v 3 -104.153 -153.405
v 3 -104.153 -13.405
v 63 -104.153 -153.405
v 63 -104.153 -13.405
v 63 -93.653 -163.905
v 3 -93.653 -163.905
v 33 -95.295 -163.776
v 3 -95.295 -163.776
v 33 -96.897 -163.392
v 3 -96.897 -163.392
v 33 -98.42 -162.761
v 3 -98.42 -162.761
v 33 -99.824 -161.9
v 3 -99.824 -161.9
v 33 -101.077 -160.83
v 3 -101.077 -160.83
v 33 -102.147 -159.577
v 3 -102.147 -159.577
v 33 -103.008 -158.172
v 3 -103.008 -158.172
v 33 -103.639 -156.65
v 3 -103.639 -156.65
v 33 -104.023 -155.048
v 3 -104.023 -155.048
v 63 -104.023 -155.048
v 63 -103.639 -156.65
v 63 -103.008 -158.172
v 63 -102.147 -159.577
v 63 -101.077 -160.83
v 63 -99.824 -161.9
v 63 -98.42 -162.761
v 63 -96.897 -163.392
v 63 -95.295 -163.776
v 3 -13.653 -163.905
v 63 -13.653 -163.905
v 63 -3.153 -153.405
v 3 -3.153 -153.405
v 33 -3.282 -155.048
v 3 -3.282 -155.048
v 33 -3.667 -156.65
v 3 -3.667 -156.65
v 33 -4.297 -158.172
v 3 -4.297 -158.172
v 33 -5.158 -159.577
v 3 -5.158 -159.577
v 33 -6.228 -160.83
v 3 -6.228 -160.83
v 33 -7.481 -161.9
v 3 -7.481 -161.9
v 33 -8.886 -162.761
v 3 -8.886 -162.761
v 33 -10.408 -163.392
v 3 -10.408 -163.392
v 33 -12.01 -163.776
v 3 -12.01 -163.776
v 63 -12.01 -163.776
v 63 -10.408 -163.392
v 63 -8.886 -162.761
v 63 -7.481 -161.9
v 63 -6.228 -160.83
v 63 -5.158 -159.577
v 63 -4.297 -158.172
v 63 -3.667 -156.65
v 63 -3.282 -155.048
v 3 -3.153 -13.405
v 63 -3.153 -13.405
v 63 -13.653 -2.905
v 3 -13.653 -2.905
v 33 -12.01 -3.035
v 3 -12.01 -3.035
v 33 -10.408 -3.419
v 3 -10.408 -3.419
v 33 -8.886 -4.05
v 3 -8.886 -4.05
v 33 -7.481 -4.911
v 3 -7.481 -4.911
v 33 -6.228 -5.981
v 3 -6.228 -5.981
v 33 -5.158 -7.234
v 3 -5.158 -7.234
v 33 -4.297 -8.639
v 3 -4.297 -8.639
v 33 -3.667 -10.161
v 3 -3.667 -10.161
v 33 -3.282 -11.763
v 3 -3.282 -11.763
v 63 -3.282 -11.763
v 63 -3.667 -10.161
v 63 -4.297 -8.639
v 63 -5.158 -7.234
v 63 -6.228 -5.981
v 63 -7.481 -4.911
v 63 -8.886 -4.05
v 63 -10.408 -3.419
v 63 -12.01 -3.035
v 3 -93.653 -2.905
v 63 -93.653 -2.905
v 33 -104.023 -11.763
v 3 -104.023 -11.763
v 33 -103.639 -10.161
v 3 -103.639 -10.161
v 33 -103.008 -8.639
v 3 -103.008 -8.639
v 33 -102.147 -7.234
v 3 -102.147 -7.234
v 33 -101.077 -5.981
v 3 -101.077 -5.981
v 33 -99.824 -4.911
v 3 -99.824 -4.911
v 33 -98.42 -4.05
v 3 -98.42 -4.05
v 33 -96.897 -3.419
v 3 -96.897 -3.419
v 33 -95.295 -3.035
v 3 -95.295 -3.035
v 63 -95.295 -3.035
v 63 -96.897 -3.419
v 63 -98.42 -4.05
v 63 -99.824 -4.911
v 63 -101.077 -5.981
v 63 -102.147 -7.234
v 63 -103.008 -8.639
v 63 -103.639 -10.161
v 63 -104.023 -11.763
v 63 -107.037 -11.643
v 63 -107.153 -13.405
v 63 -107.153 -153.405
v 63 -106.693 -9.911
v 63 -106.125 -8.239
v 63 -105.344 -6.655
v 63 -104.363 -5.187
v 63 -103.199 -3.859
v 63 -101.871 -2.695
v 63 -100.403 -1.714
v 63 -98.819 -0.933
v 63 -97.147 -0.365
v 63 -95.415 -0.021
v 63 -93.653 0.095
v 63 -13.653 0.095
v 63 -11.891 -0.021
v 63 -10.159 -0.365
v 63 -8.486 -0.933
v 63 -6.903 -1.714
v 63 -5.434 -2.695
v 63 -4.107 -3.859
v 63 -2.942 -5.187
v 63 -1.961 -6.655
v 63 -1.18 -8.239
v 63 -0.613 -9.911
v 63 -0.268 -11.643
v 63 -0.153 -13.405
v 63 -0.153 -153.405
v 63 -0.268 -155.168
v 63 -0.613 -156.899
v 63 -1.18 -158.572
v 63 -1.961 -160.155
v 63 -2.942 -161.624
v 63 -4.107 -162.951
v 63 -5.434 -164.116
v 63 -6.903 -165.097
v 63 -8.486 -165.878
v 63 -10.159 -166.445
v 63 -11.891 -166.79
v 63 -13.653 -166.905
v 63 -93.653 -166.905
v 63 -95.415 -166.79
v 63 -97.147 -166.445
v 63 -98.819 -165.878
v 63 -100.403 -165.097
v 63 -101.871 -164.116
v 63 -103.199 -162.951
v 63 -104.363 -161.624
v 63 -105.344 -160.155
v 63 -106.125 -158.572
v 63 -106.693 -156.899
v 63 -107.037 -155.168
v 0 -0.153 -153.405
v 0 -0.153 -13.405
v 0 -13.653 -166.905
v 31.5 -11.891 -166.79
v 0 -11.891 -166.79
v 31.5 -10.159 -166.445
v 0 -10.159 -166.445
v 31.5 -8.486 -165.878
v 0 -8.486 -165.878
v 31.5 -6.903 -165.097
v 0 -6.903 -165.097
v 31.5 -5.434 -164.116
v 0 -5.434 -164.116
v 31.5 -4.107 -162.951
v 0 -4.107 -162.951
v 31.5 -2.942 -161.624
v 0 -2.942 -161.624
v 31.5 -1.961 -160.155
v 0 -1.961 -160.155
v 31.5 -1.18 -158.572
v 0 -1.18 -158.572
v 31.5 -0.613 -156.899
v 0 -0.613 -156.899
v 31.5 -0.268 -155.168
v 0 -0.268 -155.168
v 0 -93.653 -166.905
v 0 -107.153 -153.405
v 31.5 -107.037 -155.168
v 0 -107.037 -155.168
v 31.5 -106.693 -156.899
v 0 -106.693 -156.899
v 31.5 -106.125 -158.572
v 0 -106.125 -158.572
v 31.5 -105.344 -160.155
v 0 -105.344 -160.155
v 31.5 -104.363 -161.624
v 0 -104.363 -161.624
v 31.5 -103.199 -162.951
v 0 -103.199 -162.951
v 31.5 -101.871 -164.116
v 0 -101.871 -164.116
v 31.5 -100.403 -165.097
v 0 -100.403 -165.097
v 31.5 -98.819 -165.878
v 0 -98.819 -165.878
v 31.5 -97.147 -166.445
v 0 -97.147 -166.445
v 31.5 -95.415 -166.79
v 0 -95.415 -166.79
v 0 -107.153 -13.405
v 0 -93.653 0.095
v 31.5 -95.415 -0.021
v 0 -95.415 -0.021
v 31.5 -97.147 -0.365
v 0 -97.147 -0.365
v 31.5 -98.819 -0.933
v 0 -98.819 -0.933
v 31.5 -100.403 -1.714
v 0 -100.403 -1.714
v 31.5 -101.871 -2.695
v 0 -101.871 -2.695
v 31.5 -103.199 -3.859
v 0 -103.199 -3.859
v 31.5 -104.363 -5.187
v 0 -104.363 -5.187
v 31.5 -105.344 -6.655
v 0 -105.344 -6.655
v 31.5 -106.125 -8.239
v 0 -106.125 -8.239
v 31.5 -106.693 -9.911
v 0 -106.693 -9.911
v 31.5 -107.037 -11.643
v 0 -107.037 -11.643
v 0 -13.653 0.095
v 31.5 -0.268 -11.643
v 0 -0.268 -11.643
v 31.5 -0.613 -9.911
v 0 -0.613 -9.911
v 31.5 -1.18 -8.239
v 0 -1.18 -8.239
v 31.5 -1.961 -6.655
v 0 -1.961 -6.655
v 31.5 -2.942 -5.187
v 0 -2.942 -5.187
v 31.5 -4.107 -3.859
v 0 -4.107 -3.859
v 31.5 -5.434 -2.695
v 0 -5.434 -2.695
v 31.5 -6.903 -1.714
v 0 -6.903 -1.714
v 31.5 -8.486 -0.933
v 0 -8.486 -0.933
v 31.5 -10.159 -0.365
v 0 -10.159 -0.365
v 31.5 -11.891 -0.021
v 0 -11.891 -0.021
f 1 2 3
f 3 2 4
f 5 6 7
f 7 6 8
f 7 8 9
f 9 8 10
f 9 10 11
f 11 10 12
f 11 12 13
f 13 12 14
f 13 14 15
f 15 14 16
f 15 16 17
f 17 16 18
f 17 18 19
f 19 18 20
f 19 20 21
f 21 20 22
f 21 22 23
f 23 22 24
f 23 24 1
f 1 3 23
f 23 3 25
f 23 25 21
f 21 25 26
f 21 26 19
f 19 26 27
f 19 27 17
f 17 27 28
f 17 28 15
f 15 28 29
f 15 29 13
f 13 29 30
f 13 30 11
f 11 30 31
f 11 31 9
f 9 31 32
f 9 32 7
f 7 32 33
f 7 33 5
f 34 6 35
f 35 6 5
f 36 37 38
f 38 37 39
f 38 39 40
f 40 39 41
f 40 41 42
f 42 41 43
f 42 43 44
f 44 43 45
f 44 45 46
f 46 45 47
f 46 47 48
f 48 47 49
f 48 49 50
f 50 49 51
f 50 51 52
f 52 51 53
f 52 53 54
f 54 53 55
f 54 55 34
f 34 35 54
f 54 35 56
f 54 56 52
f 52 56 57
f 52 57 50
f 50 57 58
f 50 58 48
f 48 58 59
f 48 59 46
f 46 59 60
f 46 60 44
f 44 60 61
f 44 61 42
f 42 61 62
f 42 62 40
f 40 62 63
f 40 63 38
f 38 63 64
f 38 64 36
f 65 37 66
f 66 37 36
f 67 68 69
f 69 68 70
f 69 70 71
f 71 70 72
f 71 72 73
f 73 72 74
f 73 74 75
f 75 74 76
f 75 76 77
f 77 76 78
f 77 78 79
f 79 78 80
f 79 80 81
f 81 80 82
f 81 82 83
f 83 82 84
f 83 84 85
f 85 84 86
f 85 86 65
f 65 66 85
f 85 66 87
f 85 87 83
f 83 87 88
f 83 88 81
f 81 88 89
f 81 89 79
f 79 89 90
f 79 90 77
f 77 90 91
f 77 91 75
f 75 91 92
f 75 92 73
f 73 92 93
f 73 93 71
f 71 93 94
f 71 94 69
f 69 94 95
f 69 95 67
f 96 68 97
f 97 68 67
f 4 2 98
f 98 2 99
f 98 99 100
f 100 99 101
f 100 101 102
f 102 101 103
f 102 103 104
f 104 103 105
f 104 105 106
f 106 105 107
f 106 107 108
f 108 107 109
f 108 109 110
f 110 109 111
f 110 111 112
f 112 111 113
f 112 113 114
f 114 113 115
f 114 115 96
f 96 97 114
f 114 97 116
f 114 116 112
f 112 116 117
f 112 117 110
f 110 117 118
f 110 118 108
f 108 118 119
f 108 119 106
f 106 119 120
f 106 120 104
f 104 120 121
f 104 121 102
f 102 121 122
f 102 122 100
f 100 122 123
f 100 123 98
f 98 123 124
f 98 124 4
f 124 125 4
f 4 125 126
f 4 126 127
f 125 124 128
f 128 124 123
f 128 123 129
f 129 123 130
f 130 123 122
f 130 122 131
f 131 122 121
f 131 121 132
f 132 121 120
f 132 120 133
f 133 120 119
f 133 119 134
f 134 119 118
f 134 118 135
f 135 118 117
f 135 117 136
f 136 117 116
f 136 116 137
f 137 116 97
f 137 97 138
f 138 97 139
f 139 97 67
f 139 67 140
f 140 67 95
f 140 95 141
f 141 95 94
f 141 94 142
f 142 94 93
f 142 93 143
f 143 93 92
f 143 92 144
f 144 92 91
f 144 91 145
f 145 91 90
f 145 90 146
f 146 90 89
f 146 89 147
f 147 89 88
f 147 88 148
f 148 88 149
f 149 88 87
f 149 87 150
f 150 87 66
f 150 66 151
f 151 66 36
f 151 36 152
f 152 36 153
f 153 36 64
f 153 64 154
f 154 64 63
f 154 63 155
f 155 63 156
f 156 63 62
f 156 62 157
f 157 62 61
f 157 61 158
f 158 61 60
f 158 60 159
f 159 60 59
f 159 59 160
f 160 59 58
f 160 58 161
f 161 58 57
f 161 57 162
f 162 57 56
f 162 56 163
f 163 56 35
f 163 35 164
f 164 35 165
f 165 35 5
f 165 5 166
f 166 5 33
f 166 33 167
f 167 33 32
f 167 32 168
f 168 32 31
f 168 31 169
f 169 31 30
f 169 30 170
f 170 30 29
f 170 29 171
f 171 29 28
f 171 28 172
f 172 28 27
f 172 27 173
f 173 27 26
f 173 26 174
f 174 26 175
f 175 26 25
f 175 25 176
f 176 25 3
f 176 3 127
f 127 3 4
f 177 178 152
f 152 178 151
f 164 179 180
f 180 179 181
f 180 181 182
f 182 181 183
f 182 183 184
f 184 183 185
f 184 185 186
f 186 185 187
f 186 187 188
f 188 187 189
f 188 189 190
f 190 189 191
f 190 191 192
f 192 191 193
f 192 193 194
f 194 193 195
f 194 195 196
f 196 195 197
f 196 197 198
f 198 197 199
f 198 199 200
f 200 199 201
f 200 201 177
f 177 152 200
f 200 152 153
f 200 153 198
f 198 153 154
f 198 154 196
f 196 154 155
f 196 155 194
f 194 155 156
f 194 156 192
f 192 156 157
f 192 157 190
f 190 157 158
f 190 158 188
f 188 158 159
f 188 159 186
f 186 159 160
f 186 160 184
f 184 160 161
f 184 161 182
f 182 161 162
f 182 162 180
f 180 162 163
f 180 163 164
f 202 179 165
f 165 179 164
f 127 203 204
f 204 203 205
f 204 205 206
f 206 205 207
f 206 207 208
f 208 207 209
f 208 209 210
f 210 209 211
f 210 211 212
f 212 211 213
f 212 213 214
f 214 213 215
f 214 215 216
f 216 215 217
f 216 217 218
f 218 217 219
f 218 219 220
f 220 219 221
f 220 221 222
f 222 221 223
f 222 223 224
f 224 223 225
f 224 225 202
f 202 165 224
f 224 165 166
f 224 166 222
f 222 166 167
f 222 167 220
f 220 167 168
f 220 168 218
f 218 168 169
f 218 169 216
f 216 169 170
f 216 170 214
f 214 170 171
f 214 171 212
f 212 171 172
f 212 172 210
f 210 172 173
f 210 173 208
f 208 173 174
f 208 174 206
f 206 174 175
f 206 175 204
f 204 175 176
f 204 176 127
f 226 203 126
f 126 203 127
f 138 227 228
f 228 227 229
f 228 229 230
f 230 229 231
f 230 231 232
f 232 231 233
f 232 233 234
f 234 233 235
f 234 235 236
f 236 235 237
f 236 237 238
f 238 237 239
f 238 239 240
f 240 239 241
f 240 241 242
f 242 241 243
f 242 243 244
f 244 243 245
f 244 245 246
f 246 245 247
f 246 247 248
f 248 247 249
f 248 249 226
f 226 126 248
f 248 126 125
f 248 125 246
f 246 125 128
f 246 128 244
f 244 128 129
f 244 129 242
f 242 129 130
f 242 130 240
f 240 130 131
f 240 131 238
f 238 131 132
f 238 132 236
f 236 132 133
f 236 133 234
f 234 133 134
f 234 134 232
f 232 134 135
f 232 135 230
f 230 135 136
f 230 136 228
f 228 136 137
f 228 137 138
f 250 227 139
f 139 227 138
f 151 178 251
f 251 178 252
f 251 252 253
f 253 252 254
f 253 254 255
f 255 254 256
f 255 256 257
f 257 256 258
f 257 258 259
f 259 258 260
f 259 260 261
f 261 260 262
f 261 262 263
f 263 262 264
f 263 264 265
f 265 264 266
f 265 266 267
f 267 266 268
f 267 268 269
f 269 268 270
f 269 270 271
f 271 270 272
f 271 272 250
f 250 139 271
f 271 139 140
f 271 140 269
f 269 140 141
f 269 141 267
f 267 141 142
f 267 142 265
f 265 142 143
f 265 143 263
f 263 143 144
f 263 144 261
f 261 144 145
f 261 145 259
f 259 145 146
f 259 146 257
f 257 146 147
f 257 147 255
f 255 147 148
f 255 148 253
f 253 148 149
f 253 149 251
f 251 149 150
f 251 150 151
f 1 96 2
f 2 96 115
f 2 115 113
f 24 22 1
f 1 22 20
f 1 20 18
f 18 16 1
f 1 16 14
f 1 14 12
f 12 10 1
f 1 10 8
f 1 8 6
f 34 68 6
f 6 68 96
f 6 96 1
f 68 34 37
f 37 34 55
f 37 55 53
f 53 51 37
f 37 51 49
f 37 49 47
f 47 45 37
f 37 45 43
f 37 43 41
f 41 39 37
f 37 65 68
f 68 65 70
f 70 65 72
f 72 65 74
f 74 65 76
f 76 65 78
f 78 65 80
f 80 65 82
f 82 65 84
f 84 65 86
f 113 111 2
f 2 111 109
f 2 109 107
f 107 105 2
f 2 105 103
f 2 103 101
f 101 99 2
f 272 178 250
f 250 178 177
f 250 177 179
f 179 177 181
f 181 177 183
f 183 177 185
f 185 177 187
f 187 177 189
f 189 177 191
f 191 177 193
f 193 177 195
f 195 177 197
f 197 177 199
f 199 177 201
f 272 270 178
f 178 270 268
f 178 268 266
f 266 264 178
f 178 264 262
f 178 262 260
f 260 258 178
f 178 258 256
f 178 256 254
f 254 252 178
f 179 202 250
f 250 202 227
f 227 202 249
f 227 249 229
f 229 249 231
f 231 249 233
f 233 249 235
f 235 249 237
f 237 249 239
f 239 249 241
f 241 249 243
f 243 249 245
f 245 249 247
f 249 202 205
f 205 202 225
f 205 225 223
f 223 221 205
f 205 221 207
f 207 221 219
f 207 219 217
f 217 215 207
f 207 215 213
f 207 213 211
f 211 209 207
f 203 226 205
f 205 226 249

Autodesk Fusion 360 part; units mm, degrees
sketch "Esquisse1" plane through (0, 0, 0) normal (1, 0, 0) x (0, 0, -1)
  line L0 (166.9054, -107.1527) -> (-0.0946, -107.1527)
  circle A0 centre (13.4054, -93.6527) radius 13.5
  line L1 (-0.0946, -107.1527) -> (-0.0946, -0.1527)
  circle A1 centre (13.4054, -13.6527) radius 13.5
  line L2 (-0.0946, -0.1527) -> (166.9054, -0.1527)
  circle A2 centre (153.4054, -13.6527) radius 13.5
  line L3 (166.9054, -0.1527) -> (166.9054, -107.1527)
  circle A3 centre (153.4054, -93.6527) radius 13.5
  dimension "d44" = 107
  dimension "d45" = 167
  dimension "d24" = 27
  dimension "d25" = 27
  dimension "d26" = 27
  dimension "d27" = 27
extrude "Extrusion3" add sketch "Esquisse1" along normal blind 3 contours L0 A0 L1 A1 L2 A2 L3 A3 | A3 | A0 | A2 | A1
sketch "Esquisse3" plane through (3, 0, 0) normal (1, 0, 0) x (0, 0, -1)
  arc A0 (13.4054, -0.1527) -> (-0.0946, -13.6527) centre (13.4054, -13.6527) ccw
  line L0 (-0.0946, -13.6527) -> (-0.0946, -93.6527)
  arc A1 (-0.0946, -93.6527) -> (13.4054, -107.1527) centre (13.4054, -93.6527) ccw
  line L1 (13.4054, -107.1527) -> (153.4054, -107.1527)
  arc A2 (153.4054, -107.1527) -> (166.9054, -93.6527) centre (153.4054, -93.6527) ccw
  line L2 (166.9054, -93.6527) -> (166.9054, -13.6527)
  arc A3 (166.9054, -13.6527) -> (153.4054, -0.1527) centre (153.4054, -13.6527) ccw
  line L3 (153.4054, -0.1527) -> (13.4054, -0.1527)
  line L4 (13.4054, -0.1527) -> (13.4054, -107.1527)
  line L5 (-0.0946, -13.6527) -> (166.9054, -13.6527)
  line L6 (153.4054, -0.1527) -> (153.4054, -107.1527)
  line L7 (166.9054, -93.6527) -> (-0.0946, -93.6527)
  line L8 (13.4054, -3.1527) -> (153.4054, -3.1527)
  line L9 (163.9054, -13.6527) -> (163.9054, -93.6527)
  line L10 (153.4054, -104.1527) -> (13.4054, -104.1527)
  line L11 (2.9054, -93.6527) -> (2.9054, -13.6527)
  line L12 (-0.0946, -0.1527) -> (166.9054, -0.1527)
  line L13 (-0.0946, -107.1527) -> (-0.0946, -0.1527)
  line L14 (166.9054, -107.1527) -> (-0.0946, -107.1527)
  line L15 (166.9054, -0.1527) -> (166.9054, -107.1527)
  arc A4 (13.4054, -3.1527) -> (2.9054, -13.6527) centre (13.4054, -13.6527) ccw
  arc A5 (163.9054, -13.6527) -> (153.4054, -3.1527) centre (153.4054, -13.6527) ccw
  arc A6 (2.9054, -93.6527) -> (13.4054, -104.1527) centre (13.4054, -93.6527) ccw
  arc A7 (153.4054, -104.1527) -> (163.9054, -93.6527) centre (153.4054, -93.6527) ccw
  dimension "d52" = 3
  dimension "d53" = 3
  dimension "d54" = 3
  dimension "d55" = 3
extrude "Extrusion4" add sketch "Esquisse3" along normal blind 60 contours A0 L4 L5 A4 | L3 L4 L6 L8 L12 | L0 L5 L7 L11 L13 | A3 L5 L6 A5 | A1 L4 L7 A6 | L2 L5 L7 L9 L15 | L1 L4 L6 L10 L14 | A2 L6 L7 A7
equation "d10 = largEntrePied + diaPiedBois"
equation "d11 = longEntrePied + diaPiedBois"
equation "d12 = diaPiedBois"
equation "d13 = diaExtPiedBois / 2"
equation "d14 = diaExtPiedBois / 2"
equation "d15 = diaPiedBois"
equation "d16 = diaPiedBois"
equation "d17 = diaPiedBois"
equation "d18 = diaExtPiedBois / 2"
equation "d44 = largEntrePied + diaExtPiedBois"
equation "d45 = longEntrePied + diaExtPiedBois"
equation "d24 = diaPiedBois + 5 mm"
equation "d25 = diaPiedBois + 5 mm"
equation "d26 = diaPiedBois + 5 mm"
equation "d27 = diaPiedBois + 5 mm"
